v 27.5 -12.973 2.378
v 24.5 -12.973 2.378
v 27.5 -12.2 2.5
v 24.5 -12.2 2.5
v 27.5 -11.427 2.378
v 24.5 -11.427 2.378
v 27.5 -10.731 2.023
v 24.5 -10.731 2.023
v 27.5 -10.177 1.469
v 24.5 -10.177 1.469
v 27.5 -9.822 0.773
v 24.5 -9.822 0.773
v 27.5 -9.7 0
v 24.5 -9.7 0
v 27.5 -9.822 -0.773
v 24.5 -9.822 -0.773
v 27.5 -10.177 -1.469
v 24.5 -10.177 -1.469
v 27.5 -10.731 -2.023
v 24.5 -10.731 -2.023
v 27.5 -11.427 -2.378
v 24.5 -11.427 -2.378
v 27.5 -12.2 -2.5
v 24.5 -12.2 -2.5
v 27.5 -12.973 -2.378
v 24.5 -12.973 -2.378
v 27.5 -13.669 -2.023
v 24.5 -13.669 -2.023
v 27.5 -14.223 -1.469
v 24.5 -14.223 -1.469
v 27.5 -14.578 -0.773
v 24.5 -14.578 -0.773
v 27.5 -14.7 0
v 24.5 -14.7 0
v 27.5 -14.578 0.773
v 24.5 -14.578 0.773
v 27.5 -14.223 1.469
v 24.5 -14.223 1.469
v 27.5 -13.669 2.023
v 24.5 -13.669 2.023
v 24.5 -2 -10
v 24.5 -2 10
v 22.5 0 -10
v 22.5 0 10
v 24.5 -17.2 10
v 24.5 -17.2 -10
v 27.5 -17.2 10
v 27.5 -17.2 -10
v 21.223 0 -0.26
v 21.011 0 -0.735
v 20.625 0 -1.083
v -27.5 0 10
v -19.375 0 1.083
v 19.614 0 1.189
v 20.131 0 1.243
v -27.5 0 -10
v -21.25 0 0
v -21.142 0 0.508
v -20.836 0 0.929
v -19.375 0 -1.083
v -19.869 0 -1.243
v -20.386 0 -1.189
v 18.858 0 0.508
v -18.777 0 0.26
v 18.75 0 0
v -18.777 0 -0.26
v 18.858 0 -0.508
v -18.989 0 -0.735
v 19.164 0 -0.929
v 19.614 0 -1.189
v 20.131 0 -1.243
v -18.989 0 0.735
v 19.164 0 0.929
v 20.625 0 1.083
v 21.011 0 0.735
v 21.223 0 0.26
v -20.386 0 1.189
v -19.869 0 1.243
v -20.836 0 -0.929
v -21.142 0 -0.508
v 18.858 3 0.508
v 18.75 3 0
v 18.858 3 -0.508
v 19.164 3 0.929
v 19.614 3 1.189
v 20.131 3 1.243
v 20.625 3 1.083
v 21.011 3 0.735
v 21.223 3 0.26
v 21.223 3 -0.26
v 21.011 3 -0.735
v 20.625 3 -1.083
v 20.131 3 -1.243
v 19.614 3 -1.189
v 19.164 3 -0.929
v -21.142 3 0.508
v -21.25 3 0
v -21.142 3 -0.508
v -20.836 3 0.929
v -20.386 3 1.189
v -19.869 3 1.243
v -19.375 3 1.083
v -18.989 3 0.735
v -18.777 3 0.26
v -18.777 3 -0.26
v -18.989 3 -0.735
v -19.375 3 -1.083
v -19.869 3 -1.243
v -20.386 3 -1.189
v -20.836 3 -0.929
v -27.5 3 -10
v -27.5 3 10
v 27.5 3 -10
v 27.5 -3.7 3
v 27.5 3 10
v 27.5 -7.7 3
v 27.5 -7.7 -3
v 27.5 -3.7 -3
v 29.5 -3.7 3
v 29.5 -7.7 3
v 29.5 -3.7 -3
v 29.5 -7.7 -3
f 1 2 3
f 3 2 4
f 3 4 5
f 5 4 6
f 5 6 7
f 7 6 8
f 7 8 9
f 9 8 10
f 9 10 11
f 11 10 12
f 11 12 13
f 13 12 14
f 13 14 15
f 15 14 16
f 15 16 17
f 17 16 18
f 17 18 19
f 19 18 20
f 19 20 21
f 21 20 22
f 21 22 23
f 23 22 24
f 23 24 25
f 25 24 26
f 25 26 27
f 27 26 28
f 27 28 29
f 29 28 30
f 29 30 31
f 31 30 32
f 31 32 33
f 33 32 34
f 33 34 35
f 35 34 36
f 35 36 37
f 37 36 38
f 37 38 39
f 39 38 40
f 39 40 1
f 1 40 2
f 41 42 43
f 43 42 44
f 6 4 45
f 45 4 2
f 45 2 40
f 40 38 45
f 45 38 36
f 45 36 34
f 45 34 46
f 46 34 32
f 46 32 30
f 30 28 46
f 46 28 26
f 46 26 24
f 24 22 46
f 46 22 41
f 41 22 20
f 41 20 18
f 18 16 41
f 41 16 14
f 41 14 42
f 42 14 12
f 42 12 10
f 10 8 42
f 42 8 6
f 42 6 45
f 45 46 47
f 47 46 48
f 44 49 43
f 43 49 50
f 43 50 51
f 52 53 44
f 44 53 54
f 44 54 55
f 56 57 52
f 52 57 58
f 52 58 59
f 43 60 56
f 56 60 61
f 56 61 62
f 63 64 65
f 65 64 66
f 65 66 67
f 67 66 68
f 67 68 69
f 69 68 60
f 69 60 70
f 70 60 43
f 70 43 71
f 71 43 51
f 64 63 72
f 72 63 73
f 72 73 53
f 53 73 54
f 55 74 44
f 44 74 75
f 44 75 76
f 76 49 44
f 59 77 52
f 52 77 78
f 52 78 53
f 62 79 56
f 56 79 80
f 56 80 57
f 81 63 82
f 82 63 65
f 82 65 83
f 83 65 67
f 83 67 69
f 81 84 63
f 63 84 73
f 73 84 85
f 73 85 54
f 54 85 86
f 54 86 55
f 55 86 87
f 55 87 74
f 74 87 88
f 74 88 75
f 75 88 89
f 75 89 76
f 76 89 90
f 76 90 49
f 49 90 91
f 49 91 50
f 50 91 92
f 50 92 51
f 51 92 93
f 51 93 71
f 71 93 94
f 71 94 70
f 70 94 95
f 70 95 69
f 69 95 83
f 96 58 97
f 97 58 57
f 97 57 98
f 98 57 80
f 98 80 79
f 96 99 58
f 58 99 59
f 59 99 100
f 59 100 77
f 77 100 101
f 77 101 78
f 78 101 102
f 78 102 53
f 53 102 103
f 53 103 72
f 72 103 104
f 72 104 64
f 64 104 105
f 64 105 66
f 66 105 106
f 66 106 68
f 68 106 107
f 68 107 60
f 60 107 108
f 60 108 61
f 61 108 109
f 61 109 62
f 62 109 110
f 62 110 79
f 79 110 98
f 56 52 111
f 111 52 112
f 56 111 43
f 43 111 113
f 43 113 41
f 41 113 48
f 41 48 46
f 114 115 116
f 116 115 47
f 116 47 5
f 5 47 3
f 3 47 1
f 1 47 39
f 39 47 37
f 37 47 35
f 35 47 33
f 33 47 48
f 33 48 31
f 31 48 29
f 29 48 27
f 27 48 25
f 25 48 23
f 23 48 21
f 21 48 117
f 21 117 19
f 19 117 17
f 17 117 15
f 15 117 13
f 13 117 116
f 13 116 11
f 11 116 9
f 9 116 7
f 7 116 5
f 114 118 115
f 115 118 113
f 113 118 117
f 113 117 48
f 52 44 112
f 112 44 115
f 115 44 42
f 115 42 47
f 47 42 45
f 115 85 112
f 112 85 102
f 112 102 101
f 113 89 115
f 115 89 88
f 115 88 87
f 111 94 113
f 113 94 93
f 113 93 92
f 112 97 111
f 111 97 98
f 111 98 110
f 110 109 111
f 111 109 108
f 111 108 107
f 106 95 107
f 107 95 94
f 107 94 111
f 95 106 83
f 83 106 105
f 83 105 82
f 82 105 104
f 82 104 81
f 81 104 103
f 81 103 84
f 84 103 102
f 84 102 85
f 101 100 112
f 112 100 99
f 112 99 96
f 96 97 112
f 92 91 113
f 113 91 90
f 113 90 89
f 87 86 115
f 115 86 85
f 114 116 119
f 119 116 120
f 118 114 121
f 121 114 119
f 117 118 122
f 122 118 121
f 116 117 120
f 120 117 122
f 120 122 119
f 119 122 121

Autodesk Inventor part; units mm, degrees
ref_plane "YZ Plane" through (0, 0, 0) normal (1, 0, 0) x (0, 1, 0)
ref_plane "XZ Plane" through (0, 0, 0) normal (0, 1, 0) x (-1, 0, 0)
ref_plane "XY Plane" through (0, 0, 0) normal (0, 0, 1) x (1, 0, 0)
sketch "스케치1" plane through (0, 0, 0) normal (0, 1, 0) x (-1, 0, 0)
  line L0 (-27.5, 10) -> (27.5, 10)
  line L1 (27.5, 10) -> (27.5, -10)
  line L2 (27.5, -10) -> (-27.5, -10)
  line L3 (-27.5, -10) -> (-27.5, 10)
  line L4 (-27.5, 10) -> (27.5, -10) construction
  line L5 (27.5, 10) -> (-27.5, -10) construction
  line L6 (-27.5, 10) -> (-24.5, 10)
  line L7 (-24.5, 10) -> (-24.5, -10)
  line L8 (-24.5, -10) -> (-27.5, -10)
  line L9 (-27.5, -10) -> (-27.5, 10)
  circle A0 centre (20, 0) radius 1.25
  circle A1 centre (-20, 0) radius 1.25
  point P0 (0, 0)
  dimension "d0" = 55
  dimension "d1" = 20
  dimension "d5" = 3
  dimension "d14" = 2.5
  dimension "d15" = 2.5
  dimension "d17" = 47.5
  dimension "d18" = 7.5
extrude "돌출1" add sketch "스케치1" along normal blind 3
extrude "돌출2" add sketch "스케치1" against normal blind 17.2 contours L0 L7 L2 L3
sketch "스케치2" plane through (24.5, -17.2, -10) normal (-1, 0, 0) x (0, 0, 1)
  line L0 (20, 17.2) -> (20, 0) projected
  line L1 (0, 17.2) -> (20, 17.2) projected
  line L2 (0, 17.2) -> (0, 0) projected
  line L3 (20, 0) -> (0, 0) projected
  line L4 (20, 17.2) -> (20, 0) projected
  circle A0 centre (10, 5) radius 2.5
  circle A1 centre (10, 5) radius 3.5
  point P0 (10, 17.2)
  point P1 (10, 0)
  dimension "d8" = 5
  dimension "d9" = 5
  dimension "d10" = 7
chamfer "모따기1" distance 2 angle 45 1 edges at (24.5, 0, 0)
extrude "돌출3" cut sketch "스케치2" against normal blind 3 contours A0
sketch "스케치5" plane through (27.5, 3, 10) normal (1, 0, 0) x (0, 0, -1)
  line L0 (0, -20.2) -> (0, 0) projected
  line L1 (20, -20.2) -> (0, -20.2) projected
  line L2 (7, -10.7) -> (13, -10.7)
  line L3 (20, -20.2) -> (20, 0) projected
  line L4 (10, -3) -> (10, -10.7) construction
  line L5 (7, -10.7) -> (7, -6.7)
  line L6 (13, -10.7) -> (13, -6.7)
  line L7 (7, -6.7) -> (13, -6.7)
  line L8 (20, -6.7) -> (20.03, -6.7)
  point P0 (7, -8.7)
  dimension "d33" = 3
extrude "돌출5" add sketch "스케치5" along normal blind 2
properties part number "base"
